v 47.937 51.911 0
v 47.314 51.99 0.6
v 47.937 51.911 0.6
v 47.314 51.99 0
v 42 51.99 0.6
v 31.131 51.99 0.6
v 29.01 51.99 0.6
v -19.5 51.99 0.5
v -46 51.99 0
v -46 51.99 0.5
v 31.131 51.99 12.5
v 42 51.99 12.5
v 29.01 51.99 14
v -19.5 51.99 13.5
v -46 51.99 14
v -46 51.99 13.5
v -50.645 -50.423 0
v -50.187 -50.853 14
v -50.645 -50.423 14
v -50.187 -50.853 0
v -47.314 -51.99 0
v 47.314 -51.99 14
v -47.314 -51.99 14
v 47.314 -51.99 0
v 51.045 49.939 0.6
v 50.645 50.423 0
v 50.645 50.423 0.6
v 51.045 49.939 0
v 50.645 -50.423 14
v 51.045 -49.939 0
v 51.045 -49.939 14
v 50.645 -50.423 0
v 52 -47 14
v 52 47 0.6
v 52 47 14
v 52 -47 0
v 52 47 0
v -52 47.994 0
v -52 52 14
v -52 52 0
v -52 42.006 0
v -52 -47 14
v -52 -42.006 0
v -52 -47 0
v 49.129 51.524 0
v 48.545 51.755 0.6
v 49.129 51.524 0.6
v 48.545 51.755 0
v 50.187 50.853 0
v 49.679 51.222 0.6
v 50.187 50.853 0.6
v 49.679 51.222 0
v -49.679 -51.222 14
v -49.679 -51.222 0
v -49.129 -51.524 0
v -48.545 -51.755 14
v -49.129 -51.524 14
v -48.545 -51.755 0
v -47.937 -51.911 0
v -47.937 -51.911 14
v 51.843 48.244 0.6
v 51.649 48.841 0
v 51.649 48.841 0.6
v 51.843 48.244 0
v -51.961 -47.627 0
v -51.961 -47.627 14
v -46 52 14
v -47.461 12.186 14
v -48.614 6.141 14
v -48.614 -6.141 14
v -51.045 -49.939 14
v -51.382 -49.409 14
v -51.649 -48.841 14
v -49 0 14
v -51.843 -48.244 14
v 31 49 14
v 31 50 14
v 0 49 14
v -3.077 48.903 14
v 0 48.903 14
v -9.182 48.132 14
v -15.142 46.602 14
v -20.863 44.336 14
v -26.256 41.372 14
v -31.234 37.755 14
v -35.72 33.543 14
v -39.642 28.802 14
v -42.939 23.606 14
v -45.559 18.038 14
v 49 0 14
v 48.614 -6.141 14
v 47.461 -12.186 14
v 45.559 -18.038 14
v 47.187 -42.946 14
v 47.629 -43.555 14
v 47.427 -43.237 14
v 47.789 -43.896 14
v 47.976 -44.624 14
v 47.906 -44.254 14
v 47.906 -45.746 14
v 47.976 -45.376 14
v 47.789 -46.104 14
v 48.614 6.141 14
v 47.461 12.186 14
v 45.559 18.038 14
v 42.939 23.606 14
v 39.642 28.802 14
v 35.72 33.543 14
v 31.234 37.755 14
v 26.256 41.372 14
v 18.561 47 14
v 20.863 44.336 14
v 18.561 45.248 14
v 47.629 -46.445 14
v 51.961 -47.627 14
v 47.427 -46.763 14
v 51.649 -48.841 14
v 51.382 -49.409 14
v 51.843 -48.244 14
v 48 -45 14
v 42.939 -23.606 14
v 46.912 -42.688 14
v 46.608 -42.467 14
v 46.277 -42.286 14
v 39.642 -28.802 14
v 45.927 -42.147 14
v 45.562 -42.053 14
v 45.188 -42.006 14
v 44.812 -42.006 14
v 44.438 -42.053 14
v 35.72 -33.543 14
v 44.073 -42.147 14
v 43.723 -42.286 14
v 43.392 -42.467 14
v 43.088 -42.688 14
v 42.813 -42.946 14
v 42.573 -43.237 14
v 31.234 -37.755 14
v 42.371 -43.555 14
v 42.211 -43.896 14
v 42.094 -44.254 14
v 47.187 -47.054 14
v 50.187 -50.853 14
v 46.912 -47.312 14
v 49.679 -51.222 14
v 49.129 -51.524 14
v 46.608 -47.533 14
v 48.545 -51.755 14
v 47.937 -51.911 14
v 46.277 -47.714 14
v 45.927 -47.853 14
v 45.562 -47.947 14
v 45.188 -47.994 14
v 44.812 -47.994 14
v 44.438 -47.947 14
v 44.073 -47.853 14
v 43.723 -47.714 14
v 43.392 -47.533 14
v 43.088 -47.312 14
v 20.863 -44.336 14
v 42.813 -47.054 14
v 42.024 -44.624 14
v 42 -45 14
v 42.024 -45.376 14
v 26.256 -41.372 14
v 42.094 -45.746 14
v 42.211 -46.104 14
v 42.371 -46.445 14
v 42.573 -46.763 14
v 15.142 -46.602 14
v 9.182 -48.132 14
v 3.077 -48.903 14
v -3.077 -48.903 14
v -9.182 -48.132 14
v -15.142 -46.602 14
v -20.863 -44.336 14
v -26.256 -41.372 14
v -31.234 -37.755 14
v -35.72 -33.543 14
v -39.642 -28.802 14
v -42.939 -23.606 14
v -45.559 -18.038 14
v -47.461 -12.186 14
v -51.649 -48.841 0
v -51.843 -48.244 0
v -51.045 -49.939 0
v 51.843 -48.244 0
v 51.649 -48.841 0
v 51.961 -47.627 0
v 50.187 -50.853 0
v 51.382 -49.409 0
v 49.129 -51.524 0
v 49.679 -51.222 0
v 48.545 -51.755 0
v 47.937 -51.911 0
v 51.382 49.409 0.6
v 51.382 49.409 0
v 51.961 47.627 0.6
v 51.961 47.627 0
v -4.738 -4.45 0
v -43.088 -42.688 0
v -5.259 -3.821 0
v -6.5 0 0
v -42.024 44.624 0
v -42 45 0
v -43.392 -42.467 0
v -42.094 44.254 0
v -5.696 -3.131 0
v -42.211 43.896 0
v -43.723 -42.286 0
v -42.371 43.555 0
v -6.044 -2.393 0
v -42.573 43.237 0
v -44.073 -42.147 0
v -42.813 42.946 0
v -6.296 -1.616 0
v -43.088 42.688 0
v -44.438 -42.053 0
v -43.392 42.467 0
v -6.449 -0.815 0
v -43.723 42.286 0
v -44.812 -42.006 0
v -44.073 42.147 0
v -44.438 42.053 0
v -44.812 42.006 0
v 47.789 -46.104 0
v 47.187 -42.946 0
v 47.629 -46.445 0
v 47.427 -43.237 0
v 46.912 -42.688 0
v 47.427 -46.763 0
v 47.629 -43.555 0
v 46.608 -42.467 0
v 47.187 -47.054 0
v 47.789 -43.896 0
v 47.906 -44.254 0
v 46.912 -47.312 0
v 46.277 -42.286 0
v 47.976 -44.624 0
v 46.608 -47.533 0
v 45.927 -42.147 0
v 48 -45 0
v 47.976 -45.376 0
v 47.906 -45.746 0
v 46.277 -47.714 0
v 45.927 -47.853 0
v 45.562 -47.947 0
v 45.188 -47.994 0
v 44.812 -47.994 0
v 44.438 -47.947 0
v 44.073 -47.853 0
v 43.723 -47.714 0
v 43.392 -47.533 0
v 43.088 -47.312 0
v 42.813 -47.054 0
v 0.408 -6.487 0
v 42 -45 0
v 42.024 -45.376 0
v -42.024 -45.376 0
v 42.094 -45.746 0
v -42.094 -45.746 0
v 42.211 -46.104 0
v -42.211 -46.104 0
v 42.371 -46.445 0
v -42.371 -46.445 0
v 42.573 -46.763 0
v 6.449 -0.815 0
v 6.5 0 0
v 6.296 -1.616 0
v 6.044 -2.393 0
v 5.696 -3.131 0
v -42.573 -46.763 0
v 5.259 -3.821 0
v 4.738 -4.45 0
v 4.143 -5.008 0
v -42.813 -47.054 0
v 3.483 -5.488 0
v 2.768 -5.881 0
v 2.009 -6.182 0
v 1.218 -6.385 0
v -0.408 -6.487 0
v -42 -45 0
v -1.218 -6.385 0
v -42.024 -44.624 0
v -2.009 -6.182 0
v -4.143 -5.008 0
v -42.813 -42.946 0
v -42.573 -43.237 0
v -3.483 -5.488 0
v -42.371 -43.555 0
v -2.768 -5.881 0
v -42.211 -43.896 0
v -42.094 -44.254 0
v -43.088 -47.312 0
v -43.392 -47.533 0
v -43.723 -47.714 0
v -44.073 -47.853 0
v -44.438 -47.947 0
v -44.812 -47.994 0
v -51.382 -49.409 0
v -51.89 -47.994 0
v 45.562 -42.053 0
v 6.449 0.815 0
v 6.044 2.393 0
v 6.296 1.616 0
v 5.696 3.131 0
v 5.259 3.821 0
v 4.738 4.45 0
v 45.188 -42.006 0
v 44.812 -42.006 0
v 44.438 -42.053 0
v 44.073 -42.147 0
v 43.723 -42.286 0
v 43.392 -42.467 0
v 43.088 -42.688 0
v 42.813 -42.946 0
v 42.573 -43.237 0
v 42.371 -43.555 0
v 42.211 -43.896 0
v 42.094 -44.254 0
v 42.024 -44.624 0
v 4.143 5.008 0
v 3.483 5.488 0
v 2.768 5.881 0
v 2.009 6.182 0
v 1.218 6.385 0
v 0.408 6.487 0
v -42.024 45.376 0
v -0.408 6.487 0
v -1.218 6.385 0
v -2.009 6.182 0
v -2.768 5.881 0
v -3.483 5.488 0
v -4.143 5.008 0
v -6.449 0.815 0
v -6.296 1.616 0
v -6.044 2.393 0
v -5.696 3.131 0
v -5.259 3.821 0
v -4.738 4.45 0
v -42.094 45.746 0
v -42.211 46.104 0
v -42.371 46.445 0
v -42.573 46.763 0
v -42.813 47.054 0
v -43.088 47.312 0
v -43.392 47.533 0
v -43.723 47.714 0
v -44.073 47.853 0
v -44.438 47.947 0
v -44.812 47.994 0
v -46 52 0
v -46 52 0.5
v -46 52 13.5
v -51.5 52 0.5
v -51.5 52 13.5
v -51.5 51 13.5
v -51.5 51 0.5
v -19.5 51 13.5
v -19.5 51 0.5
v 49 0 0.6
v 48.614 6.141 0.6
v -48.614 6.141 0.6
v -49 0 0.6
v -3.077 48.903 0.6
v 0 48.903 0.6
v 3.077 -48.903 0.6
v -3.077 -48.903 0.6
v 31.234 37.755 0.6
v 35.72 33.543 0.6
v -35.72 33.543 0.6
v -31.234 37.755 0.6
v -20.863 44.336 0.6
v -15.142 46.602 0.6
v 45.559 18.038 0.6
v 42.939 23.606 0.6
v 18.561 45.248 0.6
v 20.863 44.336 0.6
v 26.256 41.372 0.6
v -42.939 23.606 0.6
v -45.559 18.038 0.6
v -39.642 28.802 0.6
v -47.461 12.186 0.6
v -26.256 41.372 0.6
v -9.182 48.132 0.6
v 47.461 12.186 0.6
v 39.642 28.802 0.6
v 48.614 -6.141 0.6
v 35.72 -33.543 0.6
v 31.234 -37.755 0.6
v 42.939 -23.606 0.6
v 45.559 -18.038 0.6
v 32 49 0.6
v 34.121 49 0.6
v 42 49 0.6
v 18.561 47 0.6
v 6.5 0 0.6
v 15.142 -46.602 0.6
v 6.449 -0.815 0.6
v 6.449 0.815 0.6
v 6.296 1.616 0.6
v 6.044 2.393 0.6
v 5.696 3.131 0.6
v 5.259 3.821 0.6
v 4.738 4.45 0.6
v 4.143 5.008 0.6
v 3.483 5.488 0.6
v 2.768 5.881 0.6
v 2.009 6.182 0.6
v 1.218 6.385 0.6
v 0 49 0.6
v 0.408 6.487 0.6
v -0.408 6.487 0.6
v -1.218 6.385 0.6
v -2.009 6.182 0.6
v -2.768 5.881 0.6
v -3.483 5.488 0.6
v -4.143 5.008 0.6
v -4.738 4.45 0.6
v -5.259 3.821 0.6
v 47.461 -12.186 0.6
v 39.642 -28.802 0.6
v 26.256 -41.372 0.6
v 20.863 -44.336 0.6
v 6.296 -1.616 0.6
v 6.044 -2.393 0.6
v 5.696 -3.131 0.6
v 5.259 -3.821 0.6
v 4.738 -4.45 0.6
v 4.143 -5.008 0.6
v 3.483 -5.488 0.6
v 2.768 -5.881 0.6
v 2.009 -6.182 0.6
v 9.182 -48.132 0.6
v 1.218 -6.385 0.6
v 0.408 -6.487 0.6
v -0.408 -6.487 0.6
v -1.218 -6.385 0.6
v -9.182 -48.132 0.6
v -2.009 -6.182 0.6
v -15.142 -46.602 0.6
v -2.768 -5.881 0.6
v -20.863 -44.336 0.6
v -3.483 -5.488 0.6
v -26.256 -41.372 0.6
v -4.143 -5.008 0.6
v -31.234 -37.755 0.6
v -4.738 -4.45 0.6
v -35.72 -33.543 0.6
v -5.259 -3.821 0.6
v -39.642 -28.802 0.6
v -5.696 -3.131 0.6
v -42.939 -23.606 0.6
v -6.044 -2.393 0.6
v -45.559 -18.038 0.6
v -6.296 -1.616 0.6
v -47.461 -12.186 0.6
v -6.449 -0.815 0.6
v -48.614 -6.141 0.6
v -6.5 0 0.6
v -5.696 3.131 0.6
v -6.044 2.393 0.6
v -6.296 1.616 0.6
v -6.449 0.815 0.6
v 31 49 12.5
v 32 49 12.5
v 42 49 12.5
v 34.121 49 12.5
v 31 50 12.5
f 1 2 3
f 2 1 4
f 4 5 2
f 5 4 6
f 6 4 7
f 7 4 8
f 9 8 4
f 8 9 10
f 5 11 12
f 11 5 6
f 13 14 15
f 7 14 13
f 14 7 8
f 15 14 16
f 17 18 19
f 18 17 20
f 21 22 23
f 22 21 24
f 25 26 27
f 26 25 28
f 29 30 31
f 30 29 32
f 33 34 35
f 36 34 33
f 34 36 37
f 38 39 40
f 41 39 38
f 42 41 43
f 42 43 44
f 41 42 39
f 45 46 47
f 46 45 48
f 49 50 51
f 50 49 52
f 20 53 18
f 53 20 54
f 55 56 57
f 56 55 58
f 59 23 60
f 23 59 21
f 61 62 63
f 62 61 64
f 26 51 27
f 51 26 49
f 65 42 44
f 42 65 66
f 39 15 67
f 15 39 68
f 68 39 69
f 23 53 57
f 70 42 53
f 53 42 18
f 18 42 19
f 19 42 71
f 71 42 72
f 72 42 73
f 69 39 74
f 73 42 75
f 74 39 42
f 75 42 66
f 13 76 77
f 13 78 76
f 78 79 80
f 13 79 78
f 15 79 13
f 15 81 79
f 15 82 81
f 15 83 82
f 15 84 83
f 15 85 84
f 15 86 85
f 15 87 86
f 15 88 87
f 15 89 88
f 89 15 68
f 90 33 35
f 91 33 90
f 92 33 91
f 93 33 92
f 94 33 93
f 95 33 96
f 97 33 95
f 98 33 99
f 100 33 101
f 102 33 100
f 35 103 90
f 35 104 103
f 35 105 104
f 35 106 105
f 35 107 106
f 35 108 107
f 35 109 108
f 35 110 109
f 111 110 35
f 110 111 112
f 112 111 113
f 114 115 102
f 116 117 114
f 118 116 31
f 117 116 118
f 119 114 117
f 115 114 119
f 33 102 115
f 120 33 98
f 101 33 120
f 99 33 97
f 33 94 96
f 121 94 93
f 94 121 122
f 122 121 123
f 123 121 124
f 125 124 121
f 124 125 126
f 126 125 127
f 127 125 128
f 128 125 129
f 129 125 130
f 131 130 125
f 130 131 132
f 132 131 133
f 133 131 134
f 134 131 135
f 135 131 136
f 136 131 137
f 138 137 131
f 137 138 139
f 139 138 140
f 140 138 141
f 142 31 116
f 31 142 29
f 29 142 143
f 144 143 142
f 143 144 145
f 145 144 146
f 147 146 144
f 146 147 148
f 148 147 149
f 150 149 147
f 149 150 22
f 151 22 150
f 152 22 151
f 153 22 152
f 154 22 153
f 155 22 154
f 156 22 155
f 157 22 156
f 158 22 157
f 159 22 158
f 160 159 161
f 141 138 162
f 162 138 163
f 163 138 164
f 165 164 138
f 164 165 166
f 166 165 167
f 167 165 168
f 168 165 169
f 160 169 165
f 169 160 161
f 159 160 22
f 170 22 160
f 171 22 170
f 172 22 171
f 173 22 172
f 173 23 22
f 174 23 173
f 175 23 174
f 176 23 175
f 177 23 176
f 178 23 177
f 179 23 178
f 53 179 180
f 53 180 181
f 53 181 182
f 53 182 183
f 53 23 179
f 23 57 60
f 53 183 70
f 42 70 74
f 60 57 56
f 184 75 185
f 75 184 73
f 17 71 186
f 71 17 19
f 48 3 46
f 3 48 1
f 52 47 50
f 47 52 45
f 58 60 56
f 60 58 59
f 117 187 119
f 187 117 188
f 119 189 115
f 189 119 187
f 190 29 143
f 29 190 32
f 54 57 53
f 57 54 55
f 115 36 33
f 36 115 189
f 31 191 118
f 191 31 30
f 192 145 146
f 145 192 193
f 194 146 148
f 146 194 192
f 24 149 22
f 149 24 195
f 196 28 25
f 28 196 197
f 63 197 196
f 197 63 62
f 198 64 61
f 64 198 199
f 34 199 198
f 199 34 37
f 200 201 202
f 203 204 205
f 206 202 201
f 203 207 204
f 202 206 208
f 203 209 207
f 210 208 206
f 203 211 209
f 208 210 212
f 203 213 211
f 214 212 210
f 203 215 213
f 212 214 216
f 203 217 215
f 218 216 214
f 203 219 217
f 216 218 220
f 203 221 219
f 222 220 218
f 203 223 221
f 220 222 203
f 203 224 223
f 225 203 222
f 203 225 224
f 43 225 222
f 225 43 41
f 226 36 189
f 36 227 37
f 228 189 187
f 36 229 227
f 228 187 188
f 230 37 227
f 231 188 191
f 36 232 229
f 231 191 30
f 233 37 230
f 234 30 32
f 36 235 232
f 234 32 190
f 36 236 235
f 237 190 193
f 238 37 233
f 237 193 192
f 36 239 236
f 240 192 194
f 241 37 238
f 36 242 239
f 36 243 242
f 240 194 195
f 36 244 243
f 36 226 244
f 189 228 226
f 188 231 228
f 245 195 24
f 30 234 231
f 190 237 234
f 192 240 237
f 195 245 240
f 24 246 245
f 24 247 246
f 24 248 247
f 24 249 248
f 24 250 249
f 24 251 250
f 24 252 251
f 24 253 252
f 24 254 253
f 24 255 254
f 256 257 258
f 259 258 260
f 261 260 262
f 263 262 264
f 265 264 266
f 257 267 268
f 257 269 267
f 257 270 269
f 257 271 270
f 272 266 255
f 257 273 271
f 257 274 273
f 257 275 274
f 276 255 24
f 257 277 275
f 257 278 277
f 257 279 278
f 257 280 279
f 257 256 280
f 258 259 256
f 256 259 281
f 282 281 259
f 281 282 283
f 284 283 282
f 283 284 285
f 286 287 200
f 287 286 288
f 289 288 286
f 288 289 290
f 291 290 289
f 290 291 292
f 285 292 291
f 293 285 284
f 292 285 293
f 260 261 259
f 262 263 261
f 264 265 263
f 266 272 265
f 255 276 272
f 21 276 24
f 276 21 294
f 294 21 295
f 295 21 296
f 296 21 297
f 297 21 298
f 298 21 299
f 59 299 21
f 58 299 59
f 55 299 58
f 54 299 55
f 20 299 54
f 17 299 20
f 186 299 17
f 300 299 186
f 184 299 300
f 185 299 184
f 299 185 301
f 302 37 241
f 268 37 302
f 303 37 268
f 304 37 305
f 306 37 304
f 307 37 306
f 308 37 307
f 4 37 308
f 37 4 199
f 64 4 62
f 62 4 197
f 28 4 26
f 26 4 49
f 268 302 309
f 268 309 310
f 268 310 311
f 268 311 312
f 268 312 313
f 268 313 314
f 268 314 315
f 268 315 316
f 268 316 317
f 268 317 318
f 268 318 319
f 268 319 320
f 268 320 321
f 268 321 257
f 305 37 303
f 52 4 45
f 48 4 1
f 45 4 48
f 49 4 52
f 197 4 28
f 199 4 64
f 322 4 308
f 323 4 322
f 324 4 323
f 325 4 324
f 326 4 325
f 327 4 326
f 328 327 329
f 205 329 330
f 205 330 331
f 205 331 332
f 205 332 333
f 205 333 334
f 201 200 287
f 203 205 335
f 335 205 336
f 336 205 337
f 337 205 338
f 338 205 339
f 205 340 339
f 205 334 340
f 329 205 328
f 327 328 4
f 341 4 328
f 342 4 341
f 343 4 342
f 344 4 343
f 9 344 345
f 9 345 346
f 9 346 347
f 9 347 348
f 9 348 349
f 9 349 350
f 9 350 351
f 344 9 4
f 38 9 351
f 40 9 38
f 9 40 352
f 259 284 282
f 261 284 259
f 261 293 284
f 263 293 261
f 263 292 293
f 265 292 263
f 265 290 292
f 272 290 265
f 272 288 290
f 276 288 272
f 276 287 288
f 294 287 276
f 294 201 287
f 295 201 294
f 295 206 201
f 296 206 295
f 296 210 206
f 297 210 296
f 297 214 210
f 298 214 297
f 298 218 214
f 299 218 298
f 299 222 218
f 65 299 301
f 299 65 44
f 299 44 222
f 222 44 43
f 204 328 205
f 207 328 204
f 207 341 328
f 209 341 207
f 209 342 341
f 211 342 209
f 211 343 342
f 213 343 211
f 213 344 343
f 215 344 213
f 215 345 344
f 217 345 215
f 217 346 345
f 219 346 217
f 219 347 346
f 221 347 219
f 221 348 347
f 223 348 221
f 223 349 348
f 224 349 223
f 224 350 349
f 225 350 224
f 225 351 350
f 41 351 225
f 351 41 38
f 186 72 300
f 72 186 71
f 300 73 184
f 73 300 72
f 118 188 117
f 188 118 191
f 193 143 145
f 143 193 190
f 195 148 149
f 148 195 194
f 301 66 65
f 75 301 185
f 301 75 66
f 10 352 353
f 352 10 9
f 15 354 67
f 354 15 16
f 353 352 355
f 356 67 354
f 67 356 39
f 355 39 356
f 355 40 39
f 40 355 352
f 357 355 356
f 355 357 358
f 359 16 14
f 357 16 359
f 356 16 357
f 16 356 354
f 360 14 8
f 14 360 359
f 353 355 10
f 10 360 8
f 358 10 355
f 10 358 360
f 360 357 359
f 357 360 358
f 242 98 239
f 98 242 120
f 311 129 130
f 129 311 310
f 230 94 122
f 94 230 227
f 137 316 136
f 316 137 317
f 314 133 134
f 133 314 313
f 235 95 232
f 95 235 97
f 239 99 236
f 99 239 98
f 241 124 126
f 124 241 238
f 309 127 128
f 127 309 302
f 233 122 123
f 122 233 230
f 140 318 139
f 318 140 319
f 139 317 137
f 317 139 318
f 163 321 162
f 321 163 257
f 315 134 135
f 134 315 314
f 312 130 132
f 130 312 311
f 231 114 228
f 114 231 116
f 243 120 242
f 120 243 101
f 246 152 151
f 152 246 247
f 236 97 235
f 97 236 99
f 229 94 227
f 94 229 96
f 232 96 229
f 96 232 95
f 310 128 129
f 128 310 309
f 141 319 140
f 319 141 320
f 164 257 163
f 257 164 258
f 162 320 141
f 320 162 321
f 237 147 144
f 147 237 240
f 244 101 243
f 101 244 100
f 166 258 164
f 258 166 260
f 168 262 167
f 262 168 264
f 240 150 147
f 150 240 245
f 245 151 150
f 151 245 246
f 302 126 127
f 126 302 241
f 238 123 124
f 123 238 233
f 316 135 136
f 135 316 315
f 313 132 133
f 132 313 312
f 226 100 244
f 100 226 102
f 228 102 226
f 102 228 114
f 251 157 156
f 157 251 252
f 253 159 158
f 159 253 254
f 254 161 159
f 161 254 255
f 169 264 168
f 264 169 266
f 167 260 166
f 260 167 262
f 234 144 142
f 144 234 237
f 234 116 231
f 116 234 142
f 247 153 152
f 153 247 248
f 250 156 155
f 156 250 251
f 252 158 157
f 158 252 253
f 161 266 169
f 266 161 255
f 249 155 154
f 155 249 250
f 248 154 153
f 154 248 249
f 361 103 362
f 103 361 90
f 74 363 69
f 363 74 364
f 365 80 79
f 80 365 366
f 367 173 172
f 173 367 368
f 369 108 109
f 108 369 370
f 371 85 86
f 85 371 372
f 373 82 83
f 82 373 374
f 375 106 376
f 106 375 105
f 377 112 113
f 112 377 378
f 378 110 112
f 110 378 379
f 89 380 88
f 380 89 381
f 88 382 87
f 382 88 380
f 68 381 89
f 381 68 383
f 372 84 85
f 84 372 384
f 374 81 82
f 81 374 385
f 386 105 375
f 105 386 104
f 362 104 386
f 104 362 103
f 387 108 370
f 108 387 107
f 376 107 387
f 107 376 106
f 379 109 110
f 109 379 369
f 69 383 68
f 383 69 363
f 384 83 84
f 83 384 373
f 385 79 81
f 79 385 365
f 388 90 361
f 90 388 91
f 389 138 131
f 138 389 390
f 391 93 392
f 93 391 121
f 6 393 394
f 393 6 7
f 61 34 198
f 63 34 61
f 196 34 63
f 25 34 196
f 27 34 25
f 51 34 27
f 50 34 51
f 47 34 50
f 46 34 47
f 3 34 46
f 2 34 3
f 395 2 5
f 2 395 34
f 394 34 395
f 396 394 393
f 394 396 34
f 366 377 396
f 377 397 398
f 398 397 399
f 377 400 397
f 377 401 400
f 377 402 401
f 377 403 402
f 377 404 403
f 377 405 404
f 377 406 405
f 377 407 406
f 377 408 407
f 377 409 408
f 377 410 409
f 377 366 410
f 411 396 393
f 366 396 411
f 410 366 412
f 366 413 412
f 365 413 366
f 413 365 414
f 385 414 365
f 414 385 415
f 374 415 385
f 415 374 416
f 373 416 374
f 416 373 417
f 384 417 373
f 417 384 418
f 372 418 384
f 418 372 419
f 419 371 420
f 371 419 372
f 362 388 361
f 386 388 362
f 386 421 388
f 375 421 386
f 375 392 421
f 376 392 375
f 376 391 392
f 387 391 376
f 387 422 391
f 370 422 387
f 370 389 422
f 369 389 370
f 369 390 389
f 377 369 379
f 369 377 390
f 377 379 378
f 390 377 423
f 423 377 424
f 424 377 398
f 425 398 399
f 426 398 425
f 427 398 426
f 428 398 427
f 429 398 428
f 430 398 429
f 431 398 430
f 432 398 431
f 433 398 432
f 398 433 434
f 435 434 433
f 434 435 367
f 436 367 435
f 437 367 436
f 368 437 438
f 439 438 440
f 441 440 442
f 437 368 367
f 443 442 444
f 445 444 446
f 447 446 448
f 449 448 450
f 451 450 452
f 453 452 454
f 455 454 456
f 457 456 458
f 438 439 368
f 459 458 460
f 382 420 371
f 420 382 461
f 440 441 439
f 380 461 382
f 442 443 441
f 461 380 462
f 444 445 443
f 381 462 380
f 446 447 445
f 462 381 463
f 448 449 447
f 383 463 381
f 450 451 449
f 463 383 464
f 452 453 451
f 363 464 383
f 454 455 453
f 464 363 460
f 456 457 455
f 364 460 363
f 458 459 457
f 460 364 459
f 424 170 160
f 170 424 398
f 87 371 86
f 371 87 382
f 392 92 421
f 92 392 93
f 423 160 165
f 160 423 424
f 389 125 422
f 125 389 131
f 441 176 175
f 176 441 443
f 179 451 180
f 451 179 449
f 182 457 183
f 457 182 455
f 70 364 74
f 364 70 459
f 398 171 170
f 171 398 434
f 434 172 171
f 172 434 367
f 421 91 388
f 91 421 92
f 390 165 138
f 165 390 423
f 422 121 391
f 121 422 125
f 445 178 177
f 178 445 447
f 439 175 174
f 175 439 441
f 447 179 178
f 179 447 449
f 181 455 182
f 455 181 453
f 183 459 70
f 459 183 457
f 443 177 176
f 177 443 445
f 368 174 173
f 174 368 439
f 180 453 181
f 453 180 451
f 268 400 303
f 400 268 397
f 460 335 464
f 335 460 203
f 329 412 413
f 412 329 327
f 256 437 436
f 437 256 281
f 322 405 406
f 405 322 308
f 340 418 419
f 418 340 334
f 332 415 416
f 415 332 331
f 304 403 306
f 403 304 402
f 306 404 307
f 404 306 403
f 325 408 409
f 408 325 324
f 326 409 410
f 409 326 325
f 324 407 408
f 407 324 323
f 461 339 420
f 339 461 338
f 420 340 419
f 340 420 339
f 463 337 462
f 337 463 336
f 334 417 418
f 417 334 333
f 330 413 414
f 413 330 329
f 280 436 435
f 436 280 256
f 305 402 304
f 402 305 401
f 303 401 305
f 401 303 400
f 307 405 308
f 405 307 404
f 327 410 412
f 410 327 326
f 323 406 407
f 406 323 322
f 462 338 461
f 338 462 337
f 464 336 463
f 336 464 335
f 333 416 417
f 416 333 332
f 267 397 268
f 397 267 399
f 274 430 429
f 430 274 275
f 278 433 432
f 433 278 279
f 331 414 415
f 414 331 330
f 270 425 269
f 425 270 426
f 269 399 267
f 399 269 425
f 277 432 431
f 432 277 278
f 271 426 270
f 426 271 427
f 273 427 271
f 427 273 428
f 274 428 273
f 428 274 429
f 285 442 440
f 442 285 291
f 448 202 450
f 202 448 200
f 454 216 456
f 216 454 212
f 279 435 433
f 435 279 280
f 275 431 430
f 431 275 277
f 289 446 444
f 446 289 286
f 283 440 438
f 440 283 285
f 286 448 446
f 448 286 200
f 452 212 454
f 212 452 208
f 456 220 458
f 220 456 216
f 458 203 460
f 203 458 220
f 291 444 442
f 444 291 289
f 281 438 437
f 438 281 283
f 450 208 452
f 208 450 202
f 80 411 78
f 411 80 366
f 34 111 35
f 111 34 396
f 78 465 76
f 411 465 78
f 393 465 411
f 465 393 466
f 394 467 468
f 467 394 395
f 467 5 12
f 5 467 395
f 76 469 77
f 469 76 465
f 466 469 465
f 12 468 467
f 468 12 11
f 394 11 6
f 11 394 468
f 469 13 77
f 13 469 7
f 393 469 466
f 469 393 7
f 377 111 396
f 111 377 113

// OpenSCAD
$fn = 50;


difference() {
	union() {
		hull() {
			translate(v = [-47.0000000000, 47.0000000000, 0]) {
				cylinder(h = 14, r = 5);
			}
			translate(v = [47.0000000000, 47.0000000000, 0]) {
				cylinder(h = 14, r = 5);
			}
			translate(v = [-47.0000000000, -47.0000000000, 0]) {
				cylinder(h = 14, r = 5);
			}
			translate(v = [47.0000000000, -47.0000000000, 0]) {
				cylinder(h = 14, r = 5);
			}
		}
		translate(v = [-52.0000000000, 46.0000000000, 0]) {
			cube(size = [6, 6, 14]);
		}
	}
	union() {
		translate(v = [-52.5000000000, -45.0000000000, -250.0000000000]) {
			rotate(a = [0, 0, 0]) {
				difference() {
					union() {
						hull() {
							translate(v = [7.5000000000, 0, 0]) {
								cylinder(h = 250, r = 3.0000000000, r1 = 3.0000000000, r2 = 3.0000000000);
							}
							translate(v = [-7.5000000000, 0, 0]) {
								cylinder(h = 250, r = 3.0000000000, r1 = 3.0000000000, r2 = 3.0000000000);
							}
						}
					}
					union();
				}
			}
		}
		translate(v = [-52.5000000000, 45.0000000000, -250.0000000000]) {
			rotate(a = [0, 0, 0]) {
				difference() {
					union() {
						hull() {
							translate(v = [7.5000000000, 0, 0]) {
								cylinder(h = 250, r = 3.0000000000, r1 = 3.0000000000, r2 = 3.0000000000);
							}
							translate(v = [-7.5000000000, 0, 0]) {
								cylinder(h = 250, r = 3.0000000000, r1 = 3.0000000000, r2 = 3.0000000000);
							}
						}
					}
					union();
				}
			}
		}
		translate(v = [-51.5000000000, 51.0000000000, 0.5000000000]) {
			cube(size = [32, 1, 13.0000000000]);
		}
		translate(v = [45.0000000000, -45.0000000000, -50.0000000000]) {
			cylinder(h = 100, r = 3.0000000000);
		}
		translate(v = [0, 0, 0.6000000000]) {
			cylinder(h = 16.4000000000, r = 49.0000000000);
		}
		translate(v = [0, 0, -7.0000000000]) {
			cylinder(h = 14, r = 6.5000000000);
		}
		translate(v = [0.0000000000, 47.0000000000, 0.6000000000]) {
			cube(size = [52.0000000000, 2, 16.4000000000]);
		}
		translate(v = [42.0000000000, 47.0000000000, 0.6000000000]) {
			cube(size = [10, 5, 16.4000000000]);
		}
		translate(v = [31.0000000000, 47.0000000000, 12.5000000000]) {
			cube(size = [21, 5, 1.5000000000]);
		}
		translate(v = [28.2500000000, 52.7500000000, 0.6000000000]) {
			rotate(a = [0, 0, -45]) {
				cube(size = [7.5000000000, 1.5000000000, 16.4000000000]);
			}
		}
		translate(v = [11.0610000000, 45.0000000000, 0.6000000000]) {
			cube(size = [7.5000000000, 2, 13.4000000000]);
		}
	}
}
